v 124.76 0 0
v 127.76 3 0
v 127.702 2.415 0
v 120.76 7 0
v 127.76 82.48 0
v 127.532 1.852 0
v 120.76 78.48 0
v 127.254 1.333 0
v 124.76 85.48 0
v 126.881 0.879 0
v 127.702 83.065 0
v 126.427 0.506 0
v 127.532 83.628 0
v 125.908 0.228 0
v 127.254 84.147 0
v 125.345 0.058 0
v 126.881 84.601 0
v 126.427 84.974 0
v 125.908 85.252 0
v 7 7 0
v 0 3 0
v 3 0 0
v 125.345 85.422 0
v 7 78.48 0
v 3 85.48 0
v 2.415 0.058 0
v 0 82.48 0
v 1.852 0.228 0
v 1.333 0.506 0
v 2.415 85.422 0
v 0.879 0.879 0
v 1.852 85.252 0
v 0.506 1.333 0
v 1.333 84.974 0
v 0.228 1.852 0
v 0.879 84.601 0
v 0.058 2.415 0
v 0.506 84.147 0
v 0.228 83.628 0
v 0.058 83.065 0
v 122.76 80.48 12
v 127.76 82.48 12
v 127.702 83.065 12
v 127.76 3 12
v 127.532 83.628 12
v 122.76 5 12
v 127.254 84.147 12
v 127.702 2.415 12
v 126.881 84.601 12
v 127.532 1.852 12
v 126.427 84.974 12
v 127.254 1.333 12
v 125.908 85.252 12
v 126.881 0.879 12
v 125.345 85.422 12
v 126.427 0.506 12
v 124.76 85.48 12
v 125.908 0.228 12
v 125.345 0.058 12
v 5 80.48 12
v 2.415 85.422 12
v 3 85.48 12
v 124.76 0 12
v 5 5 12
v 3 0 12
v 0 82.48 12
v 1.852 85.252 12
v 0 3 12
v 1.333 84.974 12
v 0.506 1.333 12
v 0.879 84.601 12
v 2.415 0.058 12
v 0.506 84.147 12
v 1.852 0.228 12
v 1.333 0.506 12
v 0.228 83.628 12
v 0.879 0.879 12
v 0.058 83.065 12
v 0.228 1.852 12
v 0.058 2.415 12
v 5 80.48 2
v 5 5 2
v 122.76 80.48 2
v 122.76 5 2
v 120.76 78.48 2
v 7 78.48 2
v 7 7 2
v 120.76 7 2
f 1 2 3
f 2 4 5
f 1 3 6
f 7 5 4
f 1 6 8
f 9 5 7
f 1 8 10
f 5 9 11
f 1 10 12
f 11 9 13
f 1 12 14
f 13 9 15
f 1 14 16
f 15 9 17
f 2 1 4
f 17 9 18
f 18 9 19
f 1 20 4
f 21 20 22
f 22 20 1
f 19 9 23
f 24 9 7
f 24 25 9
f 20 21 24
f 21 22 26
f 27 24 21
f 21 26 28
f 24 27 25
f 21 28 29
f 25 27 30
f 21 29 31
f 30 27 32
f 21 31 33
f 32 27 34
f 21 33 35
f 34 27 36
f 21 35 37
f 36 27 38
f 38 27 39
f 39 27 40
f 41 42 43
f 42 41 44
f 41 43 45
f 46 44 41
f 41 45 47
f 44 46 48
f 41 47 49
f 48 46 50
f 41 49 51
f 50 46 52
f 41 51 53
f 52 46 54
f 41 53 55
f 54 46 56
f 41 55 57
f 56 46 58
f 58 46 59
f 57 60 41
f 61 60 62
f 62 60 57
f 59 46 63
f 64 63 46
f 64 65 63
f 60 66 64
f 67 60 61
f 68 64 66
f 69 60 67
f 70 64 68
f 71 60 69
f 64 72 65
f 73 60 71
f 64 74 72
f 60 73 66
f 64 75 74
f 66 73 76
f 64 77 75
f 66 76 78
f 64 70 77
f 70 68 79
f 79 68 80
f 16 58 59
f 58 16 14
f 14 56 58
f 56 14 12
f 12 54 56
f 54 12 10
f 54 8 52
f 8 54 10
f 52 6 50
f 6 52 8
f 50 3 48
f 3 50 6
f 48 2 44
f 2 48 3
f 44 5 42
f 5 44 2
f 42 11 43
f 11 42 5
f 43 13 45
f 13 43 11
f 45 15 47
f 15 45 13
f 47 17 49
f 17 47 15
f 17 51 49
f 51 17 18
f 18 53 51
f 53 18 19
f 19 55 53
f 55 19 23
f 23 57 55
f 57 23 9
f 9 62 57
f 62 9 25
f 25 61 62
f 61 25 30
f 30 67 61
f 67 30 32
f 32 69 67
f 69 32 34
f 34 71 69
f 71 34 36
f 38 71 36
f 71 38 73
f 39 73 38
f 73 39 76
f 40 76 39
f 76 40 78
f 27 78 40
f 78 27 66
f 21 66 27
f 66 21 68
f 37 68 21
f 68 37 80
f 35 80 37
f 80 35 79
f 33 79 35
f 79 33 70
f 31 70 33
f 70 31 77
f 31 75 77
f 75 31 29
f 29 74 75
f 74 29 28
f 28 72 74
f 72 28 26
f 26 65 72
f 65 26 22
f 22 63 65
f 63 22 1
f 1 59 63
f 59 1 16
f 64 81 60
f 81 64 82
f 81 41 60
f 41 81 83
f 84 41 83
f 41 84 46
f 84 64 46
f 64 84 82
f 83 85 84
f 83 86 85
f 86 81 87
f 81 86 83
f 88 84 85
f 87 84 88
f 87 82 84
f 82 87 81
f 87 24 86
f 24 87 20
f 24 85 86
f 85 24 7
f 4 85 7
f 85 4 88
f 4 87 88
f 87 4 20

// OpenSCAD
// file: labware.scad
// BaeBugs parametric labware library (labware twin), v0.1
// All parts are built as 2D profiles extruded in Z, so remixes render fast.
// Units: mm. SBS footprint per ANSI/SLAS 1-2004: 127.76 x 85.48.
// License: CERN-OHL-W-2.0 unless a part file says otherwise.

SBS_X = 127.76;
SBS_Y = 85.48;
$fn = 32;

// Rounded rectangle profile anchored at the origin.
module rrect(x, y, r = 3) {
    translate([r, r]) offset(r = r) square([x - 2 * r, y - 2 * r]);
}

// Grid of round holes. A1 is the back-left well, matching Opentrons/SBS naming,
// so row 0 sits at y = footprint_y - a1_y.
module hole_grid(rows, cols, pitch, hole_d, a1_x, a1_y, footprint_y) {
    for (r = [0 : rows - 1], c = [0 : cols - 1])
        translate([a1_x + c * pitch, footprint_y - a1_y - r * pitch]) circle(d = hole_d);
}

// Tube or tip rack plate: solid top deck with holes, plus a skirt so it sits in a deck slot.
module sbs_plate(rows = 8, cols = 12, pitch = 9, hole_d = 5.8, height = 20,
                 a1_x = 14.38, a1_y = 11.24, footprint_x = SBS_X, footprint_y = SBS_Y,
                 deck = 3, skirt = 2) {
    // top deck
    translate([0, 0, height - deck]) linear_extrude(deck)
        difference() {
            rrect(footprint_x, footprint_y);
            hole_grid(rows, cols, pitch, hole_d, a1_x, a1_y, footprint_y);
        }
    // skirt wall
    linear_extrude(height - deck)
        difference() {
            rrect(footprint_x, footprint_y);
            translate([skirt, skirt]) rrect(footprint_x - 2 * skirt, footprint_y - 2 * skirt, 2);
        }
    // bottom locator ring (keeps tubes from sliding, 1.5 mm floor with smaller holes)
    linear_extrude(1.5)
        difference() {
            translate([skirt, skirt]) rrect(footprint_x - 2 * skirt, footprint_y - 2 * skirt, 2);
            hole_grid(rows, cols, pitch, hole_d * 0.6, a1_x, a1_y, footprint_y);
        }
}

// Flat grid insert (e.g. 10x10 cryo box insert).
module grid_insert(rows = 10, cols = 10, pitch = 13, hole_d = 12.8, height = 12,
                   a1_x = 8, a1_y = 8, footprint_x = 133, footprint_y = 133) {
    linear_extrude(height)
        difference() {
            rrect(footprint_x, footprint_y, 2);
            hole_grid(rows, cols, pitch, hole_d, a1_x, a1_y, footprint_y);
        }
}

// Open lipped frame: the "folder" frame. Inserts rest on the inner lip.
module frame(footprint_x = SBS_X, footprint_y = SBS_Y, height = 12, wall = 5, lip = 2, lip_z = 2) {
    linear_extrude(height)
        difference() {
            rrect(footprint_x, footprint_y);
            translate([wall, wall]) square([footprint_x - 2 * wall, footprint_y - 2 * wall]);
        }
    linear_extrude(lip_z)
        difference() {
            translate([wall - 0.01, wall - 0.01]) square([footprint_x - 2 * wall + 0.02, footprint_y - 2 * wall + 0.02]);
            translate([wall + lip, wall + lip]) square([footprint_x - 2 * (wall + lip), footprint_y - 2 * (wall + lip)]);
        }
}

// Frame split into rows x cols windows, each with a perforated floor (printed mesh).
module grid_frame(footprint_x = SBS_X, footprint_y = SBS_Y, height = 8, wall = 4, rows = 2, cols = 3,
                  rib = 3, floor = 1.2, mesh_hole = 2, mesh_pitch = 3) {
    ix = footprint_x - 2 * wall;
    iy = footprint_y - 2 * wall;
    cw = (ix - (cols - 1) * rib) / cols;
    ch = (iy - (rows - 1) * rib) / rows;
    // walls and ribs
    linear_extrude(height)
        difference() {
            rrect(footprint_x, footprint_y);
            for (r = [0 : rows - 1], c = [0 : cols - 1])
                translate([wall + c * (cw + rib), wall + r * (ch + rib)]) square([cw, ch]);
        }
    // perforated floor (square holes print cleanly without supports)
    linear_extrude(floor)
        difference() {
            translate([wall, wall]) square([ix, iy]);
            for (r = [0 : rows - 1], c = [0 : cols - 1])
                translate([wall + c * (cw + rib), wall + r * (ch + rib)])
                    for (i = [0 : floor((cw - mesh_pitch) / mesh_pitch)], j = [0 : floor((ch - mesh_pitch) / mesh_pitch)])
                        translate([mesh_pitch * 0.75 + i * mesh_pitch, mesh_pitch * 0.75 + j * mesh_pitch])
                            square(mesh_hole, center = true);
        }
}

// Hexagonal lattice clipped to a rectangle with a solid rim.
module honeycomb(footprint_x = 117, footprint_y = 75, height = 6, cell = 14, wall = 1.6, rim = 2) {
    dx = cell;                 // across-flats pitch
    dy = cell * sqrt(3) / 2;   // row pitch
    linear_extrude(height)
        difference() {
            square([footprint_x, footprint_y]);
            intersection() {
                translate([rim, rim]) square([footprint_x - 2 * rim, footprint_y - 2 * rim]);
                for (j = [0 : ceil(footprint_y / dy)], i = [-1 : ceil(footprint_x / dx)])
                    translate([i * dx + (j % 2) * dx / 2, j * dy])
                        rotate(30) circle(d = (cell - wall) / cos(30), $fn = 6);
            }
        }
}
// main file
// SBS lipped frame ('folder')
// part id: print-frame-sbs  license: MIT
// labware.scad sha256: 025cbfe59bfb2d32557e6a9d5cc7a1fbf1fc54a5ea617dbfabe5a0ebfc3ffba2
// derived from: obs-printed-frame-open
// Edit the parameters to remix. Catalog dimensions marked est. need calipers before a production run.
use <labware.scad>

frame(footprint_x = 127.76, footprint_y = 85.48, height = 12.0, wall = 5.0, lip = 2.0, lip_z = 2.0);
